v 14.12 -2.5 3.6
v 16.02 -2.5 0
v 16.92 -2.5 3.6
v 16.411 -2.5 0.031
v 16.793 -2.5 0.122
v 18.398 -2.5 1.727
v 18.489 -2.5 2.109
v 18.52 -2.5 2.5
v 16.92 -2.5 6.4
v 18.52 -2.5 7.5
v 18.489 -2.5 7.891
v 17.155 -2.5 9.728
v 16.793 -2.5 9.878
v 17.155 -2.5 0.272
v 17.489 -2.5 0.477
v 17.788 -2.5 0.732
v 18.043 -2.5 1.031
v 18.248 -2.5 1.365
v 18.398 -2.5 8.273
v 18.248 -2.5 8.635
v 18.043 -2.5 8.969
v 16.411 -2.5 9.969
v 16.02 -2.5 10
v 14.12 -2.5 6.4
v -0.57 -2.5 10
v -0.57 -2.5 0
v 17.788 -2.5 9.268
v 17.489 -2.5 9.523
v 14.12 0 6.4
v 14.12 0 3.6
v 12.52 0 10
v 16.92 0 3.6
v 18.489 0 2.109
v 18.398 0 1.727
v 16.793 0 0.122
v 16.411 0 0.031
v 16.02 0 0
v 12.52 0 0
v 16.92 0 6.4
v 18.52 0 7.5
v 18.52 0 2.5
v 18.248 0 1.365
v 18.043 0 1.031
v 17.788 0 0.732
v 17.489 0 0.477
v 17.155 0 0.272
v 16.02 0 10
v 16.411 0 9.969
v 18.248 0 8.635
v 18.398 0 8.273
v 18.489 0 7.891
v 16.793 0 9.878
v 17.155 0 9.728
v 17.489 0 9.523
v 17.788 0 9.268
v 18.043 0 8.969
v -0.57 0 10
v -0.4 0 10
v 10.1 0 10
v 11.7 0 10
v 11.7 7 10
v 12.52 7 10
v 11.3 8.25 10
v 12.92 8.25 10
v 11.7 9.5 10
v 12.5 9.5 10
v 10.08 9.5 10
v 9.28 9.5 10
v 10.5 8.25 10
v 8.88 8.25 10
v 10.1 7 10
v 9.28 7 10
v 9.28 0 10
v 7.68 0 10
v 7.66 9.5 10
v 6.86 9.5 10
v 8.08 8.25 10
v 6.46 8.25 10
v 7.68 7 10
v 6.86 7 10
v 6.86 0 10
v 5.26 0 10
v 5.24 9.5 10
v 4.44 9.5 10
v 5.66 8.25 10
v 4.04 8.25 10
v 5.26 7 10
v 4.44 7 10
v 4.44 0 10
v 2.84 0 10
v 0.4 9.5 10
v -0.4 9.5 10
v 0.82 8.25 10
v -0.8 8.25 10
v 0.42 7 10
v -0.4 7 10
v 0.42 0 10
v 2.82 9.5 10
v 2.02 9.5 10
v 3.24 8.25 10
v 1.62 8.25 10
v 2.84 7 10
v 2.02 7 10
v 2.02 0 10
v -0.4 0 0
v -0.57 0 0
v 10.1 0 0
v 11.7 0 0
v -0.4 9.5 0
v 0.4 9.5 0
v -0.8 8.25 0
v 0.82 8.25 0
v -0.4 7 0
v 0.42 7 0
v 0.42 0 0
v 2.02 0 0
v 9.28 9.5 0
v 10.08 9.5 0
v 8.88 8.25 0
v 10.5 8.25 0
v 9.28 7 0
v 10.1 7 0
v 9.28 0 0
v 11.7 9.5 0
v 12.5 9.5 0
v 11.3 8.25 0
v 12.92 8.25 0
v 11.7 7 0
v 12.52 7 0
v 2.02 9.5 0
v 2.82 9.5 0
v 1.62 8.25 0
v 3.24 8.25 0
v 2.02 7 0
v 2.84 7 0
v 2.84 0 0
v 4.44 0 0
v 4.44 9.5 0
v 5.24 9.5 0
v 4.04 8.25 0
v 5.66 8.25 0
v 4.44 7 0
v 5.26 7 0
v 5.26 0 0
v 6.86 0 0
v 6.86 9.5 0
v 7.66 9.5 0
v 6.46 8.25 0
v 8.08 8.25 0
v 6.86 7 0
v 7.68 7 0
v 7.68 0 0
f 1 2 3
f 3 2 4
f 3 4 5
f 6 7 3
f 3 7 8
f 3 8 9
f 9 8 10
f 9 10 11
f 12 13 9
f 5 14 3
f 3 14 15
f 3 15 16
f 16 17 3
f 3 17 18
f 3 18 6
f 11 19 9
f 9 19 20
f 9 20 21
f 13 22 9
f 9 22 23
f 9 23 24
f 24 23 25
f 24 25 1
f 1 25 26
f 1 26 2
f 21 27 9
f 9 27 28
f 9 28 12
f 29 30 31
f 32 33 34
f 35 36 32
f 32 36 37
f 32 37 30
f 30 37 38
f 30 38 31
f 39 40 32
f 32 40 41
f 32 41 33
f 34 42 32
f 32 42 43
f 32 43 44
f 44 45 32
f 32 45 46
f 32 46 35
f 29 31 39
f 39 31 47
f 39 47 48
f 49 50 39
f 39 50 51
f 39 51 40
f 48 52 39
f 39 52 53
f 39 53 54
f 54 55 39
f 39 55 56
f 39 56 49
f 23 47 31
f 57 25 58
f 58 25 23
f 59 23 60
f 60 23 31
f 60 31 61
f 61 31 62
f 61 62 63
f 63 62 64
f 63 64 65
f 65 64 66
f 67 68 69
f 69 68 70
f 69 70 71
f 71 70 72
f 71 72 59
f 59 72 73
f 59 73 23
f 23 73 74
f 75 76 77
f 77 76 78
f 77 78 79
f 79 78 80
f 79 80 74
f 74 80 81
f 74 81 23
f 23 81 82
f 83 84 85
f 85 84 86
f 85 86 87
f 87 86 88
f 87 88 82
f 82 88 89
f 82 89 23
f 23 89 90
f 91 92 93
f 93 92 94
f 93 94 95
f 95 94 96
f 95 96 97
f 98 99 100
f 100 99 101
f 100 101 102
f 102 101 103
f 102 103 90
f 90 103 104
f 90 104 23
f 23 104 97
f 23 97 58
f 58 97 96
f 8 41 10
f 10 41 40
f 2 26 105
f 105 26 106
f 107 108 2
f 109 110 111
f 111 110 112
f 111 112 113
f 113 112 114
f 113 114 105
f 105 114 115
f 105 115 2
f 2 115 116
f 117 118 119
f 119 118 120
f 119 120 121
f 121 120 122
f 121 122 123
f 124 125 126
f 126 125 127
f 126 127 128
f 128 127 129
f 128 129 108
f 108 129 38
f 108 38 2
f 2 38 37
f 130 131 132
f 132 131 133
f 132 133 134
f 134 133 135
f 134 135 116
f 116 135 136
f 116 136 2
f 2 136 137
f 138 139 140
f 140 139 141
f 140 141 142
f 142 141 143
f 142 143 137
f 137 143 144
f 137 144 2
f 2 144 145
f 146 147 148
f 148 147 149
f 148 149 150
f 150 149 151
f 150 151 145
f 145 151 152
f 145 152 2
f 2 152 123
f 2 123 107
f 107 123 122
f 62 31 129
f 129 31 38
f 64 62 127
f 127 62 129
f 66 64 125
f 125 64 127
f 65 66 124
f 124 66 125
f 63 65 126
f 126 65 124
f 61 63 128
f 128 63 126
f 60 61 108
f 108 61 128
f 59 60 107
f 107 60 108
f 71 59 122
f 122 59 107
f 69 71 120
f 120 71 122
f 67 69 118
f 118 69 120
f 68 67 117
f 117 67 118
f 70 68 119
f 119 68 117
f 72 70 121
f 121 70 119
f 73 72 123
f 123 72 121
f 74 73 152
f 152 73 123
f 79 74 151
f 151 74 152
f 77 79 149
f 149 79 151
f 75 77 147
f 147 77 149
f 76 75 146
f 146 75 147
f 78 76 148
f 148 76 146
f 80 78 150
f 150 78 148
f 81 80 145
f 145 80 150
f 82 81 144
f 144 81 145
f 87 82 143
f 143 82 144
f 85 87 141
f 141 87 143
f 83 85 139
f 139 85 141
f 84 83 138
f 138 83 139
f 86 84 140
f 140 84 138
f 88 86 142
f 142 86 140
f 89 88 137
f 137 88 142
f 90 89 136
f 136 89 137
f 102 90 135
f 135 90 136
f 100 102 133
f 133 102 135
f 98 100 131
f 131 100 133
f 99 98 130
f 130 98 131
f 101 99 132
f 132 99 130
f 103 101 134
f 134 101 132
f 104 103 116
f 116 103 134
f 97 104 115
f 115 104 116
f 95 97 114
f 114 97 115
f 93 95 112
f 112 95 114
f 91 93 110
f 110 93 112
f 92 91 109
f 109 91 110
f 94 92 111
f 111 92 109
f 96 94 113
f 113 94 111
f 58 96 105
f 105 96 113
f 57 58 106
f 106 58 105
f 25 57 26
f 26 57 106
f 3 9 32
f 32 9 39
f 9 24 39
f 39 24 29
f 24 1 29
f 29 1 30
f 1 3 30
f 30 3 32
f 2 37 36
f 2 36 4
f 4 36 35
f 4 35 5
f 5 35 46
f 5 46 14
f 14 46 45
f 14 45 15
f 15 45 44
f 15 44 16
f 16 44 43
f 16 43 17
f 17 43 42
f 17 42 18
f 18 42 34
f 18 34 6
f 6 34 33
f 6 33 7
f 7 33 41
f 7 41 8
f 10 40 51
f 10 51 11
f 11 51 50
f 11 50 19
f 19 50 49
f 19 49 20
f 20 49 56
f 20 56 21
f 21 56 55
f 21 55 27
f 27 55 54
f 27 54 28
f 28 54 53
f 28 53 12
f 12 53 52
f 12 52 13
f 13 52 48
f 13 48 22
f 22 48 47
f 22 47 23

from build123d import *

# Parameters (mm, degrees)
RESSALTO_EXTRUS_O1_DEPTH = 10
ESBO_O2_W                = 2.8
ESBO_O2_H                = 2.8
CORTE_EXTRUS_O1_DEPTH    = 24.091998614


with BuildPart() as part:
    # Esboço1 → Ressalto-extrusão1 (new body)
    with BuildSketch(Plane.XY):
        Polygon((-0.4, 7), (-0.4, 0), (-0.57, 0), (-0.57, -2.5), (5.43, -2.5), (18.52, -2.5), (18.52, 0), (12.52, 0), (12.52, 7), (12.92, 8.25), (12.5, 9.5), (11.7, 9.5), (11.3, 8.25), (11.7, 7), (11.7, 0), (10.1, 0), (10.1, 7), (10.5, 8.25), (10.08, 9.5), (9.28, 9.5), (8.88, 8.25), (9.28, 7), (9.28, 0), (7.68, 0), (7.68, 7), (8.08, 8.25), (7.66, 9.5), (6.86, 9.5), (6.46, 8.25), (6.86, 7), (6.86, 0), (5.26, 0), (5.26, 7), (5.66, 8.25), (5.24, 9.5), (4.44, 9.5), (4.04, 8.25), (4.44, 7), (4.44, 0), (2.84, 0), (2.84, 7), (3.24, 8.25), (2.82, 9.5), (2.02, 9.5), (1.62, 8.25), (2.02, 7), (2.02, 0), (0.42, 0), (0.42, 7), (0.82, 8.25), (0.4, 9.5), (-0.4, 9.5), (-0.8, 8.25), align=None)
    extrude(amount=RESSALTO_EXTRUS_O1_DEPTH)

    # Esboço2 → Corte-extrusão1 (cut, through all)
    with BuildSketch(Plane(origin=(0, 0, 0), x_dir=(1, 0, 0), z_dir=(0, 1, 0))):
        with Locations((15.52, -5)):
            Rectangle(ESBO_O2_W, ESBO_O2_H)
        with BuildLine():
            ThreePointArc((16.02, 0), (17.787766953, -0.732233047), (18.52, -2.5))
            Line((18.52, -2.5), (18.52, 0))
            Line((18.52, 0), (16.02, 0))
        make_face()
        with BuildLine():
            Line((18.52, -10), (18.52, -7.5))
            ThreePointArc((18.52, -7.5), (17.787766953, -9.267766953), (16.02, -10))
            Line((16.02, -10), (18.52, -10))
        make_face()
    extrude(amount=-CORTE_EXTRUS_O1_DEPTH, mode=Mode.SUBTRACT)


solid = part.part
